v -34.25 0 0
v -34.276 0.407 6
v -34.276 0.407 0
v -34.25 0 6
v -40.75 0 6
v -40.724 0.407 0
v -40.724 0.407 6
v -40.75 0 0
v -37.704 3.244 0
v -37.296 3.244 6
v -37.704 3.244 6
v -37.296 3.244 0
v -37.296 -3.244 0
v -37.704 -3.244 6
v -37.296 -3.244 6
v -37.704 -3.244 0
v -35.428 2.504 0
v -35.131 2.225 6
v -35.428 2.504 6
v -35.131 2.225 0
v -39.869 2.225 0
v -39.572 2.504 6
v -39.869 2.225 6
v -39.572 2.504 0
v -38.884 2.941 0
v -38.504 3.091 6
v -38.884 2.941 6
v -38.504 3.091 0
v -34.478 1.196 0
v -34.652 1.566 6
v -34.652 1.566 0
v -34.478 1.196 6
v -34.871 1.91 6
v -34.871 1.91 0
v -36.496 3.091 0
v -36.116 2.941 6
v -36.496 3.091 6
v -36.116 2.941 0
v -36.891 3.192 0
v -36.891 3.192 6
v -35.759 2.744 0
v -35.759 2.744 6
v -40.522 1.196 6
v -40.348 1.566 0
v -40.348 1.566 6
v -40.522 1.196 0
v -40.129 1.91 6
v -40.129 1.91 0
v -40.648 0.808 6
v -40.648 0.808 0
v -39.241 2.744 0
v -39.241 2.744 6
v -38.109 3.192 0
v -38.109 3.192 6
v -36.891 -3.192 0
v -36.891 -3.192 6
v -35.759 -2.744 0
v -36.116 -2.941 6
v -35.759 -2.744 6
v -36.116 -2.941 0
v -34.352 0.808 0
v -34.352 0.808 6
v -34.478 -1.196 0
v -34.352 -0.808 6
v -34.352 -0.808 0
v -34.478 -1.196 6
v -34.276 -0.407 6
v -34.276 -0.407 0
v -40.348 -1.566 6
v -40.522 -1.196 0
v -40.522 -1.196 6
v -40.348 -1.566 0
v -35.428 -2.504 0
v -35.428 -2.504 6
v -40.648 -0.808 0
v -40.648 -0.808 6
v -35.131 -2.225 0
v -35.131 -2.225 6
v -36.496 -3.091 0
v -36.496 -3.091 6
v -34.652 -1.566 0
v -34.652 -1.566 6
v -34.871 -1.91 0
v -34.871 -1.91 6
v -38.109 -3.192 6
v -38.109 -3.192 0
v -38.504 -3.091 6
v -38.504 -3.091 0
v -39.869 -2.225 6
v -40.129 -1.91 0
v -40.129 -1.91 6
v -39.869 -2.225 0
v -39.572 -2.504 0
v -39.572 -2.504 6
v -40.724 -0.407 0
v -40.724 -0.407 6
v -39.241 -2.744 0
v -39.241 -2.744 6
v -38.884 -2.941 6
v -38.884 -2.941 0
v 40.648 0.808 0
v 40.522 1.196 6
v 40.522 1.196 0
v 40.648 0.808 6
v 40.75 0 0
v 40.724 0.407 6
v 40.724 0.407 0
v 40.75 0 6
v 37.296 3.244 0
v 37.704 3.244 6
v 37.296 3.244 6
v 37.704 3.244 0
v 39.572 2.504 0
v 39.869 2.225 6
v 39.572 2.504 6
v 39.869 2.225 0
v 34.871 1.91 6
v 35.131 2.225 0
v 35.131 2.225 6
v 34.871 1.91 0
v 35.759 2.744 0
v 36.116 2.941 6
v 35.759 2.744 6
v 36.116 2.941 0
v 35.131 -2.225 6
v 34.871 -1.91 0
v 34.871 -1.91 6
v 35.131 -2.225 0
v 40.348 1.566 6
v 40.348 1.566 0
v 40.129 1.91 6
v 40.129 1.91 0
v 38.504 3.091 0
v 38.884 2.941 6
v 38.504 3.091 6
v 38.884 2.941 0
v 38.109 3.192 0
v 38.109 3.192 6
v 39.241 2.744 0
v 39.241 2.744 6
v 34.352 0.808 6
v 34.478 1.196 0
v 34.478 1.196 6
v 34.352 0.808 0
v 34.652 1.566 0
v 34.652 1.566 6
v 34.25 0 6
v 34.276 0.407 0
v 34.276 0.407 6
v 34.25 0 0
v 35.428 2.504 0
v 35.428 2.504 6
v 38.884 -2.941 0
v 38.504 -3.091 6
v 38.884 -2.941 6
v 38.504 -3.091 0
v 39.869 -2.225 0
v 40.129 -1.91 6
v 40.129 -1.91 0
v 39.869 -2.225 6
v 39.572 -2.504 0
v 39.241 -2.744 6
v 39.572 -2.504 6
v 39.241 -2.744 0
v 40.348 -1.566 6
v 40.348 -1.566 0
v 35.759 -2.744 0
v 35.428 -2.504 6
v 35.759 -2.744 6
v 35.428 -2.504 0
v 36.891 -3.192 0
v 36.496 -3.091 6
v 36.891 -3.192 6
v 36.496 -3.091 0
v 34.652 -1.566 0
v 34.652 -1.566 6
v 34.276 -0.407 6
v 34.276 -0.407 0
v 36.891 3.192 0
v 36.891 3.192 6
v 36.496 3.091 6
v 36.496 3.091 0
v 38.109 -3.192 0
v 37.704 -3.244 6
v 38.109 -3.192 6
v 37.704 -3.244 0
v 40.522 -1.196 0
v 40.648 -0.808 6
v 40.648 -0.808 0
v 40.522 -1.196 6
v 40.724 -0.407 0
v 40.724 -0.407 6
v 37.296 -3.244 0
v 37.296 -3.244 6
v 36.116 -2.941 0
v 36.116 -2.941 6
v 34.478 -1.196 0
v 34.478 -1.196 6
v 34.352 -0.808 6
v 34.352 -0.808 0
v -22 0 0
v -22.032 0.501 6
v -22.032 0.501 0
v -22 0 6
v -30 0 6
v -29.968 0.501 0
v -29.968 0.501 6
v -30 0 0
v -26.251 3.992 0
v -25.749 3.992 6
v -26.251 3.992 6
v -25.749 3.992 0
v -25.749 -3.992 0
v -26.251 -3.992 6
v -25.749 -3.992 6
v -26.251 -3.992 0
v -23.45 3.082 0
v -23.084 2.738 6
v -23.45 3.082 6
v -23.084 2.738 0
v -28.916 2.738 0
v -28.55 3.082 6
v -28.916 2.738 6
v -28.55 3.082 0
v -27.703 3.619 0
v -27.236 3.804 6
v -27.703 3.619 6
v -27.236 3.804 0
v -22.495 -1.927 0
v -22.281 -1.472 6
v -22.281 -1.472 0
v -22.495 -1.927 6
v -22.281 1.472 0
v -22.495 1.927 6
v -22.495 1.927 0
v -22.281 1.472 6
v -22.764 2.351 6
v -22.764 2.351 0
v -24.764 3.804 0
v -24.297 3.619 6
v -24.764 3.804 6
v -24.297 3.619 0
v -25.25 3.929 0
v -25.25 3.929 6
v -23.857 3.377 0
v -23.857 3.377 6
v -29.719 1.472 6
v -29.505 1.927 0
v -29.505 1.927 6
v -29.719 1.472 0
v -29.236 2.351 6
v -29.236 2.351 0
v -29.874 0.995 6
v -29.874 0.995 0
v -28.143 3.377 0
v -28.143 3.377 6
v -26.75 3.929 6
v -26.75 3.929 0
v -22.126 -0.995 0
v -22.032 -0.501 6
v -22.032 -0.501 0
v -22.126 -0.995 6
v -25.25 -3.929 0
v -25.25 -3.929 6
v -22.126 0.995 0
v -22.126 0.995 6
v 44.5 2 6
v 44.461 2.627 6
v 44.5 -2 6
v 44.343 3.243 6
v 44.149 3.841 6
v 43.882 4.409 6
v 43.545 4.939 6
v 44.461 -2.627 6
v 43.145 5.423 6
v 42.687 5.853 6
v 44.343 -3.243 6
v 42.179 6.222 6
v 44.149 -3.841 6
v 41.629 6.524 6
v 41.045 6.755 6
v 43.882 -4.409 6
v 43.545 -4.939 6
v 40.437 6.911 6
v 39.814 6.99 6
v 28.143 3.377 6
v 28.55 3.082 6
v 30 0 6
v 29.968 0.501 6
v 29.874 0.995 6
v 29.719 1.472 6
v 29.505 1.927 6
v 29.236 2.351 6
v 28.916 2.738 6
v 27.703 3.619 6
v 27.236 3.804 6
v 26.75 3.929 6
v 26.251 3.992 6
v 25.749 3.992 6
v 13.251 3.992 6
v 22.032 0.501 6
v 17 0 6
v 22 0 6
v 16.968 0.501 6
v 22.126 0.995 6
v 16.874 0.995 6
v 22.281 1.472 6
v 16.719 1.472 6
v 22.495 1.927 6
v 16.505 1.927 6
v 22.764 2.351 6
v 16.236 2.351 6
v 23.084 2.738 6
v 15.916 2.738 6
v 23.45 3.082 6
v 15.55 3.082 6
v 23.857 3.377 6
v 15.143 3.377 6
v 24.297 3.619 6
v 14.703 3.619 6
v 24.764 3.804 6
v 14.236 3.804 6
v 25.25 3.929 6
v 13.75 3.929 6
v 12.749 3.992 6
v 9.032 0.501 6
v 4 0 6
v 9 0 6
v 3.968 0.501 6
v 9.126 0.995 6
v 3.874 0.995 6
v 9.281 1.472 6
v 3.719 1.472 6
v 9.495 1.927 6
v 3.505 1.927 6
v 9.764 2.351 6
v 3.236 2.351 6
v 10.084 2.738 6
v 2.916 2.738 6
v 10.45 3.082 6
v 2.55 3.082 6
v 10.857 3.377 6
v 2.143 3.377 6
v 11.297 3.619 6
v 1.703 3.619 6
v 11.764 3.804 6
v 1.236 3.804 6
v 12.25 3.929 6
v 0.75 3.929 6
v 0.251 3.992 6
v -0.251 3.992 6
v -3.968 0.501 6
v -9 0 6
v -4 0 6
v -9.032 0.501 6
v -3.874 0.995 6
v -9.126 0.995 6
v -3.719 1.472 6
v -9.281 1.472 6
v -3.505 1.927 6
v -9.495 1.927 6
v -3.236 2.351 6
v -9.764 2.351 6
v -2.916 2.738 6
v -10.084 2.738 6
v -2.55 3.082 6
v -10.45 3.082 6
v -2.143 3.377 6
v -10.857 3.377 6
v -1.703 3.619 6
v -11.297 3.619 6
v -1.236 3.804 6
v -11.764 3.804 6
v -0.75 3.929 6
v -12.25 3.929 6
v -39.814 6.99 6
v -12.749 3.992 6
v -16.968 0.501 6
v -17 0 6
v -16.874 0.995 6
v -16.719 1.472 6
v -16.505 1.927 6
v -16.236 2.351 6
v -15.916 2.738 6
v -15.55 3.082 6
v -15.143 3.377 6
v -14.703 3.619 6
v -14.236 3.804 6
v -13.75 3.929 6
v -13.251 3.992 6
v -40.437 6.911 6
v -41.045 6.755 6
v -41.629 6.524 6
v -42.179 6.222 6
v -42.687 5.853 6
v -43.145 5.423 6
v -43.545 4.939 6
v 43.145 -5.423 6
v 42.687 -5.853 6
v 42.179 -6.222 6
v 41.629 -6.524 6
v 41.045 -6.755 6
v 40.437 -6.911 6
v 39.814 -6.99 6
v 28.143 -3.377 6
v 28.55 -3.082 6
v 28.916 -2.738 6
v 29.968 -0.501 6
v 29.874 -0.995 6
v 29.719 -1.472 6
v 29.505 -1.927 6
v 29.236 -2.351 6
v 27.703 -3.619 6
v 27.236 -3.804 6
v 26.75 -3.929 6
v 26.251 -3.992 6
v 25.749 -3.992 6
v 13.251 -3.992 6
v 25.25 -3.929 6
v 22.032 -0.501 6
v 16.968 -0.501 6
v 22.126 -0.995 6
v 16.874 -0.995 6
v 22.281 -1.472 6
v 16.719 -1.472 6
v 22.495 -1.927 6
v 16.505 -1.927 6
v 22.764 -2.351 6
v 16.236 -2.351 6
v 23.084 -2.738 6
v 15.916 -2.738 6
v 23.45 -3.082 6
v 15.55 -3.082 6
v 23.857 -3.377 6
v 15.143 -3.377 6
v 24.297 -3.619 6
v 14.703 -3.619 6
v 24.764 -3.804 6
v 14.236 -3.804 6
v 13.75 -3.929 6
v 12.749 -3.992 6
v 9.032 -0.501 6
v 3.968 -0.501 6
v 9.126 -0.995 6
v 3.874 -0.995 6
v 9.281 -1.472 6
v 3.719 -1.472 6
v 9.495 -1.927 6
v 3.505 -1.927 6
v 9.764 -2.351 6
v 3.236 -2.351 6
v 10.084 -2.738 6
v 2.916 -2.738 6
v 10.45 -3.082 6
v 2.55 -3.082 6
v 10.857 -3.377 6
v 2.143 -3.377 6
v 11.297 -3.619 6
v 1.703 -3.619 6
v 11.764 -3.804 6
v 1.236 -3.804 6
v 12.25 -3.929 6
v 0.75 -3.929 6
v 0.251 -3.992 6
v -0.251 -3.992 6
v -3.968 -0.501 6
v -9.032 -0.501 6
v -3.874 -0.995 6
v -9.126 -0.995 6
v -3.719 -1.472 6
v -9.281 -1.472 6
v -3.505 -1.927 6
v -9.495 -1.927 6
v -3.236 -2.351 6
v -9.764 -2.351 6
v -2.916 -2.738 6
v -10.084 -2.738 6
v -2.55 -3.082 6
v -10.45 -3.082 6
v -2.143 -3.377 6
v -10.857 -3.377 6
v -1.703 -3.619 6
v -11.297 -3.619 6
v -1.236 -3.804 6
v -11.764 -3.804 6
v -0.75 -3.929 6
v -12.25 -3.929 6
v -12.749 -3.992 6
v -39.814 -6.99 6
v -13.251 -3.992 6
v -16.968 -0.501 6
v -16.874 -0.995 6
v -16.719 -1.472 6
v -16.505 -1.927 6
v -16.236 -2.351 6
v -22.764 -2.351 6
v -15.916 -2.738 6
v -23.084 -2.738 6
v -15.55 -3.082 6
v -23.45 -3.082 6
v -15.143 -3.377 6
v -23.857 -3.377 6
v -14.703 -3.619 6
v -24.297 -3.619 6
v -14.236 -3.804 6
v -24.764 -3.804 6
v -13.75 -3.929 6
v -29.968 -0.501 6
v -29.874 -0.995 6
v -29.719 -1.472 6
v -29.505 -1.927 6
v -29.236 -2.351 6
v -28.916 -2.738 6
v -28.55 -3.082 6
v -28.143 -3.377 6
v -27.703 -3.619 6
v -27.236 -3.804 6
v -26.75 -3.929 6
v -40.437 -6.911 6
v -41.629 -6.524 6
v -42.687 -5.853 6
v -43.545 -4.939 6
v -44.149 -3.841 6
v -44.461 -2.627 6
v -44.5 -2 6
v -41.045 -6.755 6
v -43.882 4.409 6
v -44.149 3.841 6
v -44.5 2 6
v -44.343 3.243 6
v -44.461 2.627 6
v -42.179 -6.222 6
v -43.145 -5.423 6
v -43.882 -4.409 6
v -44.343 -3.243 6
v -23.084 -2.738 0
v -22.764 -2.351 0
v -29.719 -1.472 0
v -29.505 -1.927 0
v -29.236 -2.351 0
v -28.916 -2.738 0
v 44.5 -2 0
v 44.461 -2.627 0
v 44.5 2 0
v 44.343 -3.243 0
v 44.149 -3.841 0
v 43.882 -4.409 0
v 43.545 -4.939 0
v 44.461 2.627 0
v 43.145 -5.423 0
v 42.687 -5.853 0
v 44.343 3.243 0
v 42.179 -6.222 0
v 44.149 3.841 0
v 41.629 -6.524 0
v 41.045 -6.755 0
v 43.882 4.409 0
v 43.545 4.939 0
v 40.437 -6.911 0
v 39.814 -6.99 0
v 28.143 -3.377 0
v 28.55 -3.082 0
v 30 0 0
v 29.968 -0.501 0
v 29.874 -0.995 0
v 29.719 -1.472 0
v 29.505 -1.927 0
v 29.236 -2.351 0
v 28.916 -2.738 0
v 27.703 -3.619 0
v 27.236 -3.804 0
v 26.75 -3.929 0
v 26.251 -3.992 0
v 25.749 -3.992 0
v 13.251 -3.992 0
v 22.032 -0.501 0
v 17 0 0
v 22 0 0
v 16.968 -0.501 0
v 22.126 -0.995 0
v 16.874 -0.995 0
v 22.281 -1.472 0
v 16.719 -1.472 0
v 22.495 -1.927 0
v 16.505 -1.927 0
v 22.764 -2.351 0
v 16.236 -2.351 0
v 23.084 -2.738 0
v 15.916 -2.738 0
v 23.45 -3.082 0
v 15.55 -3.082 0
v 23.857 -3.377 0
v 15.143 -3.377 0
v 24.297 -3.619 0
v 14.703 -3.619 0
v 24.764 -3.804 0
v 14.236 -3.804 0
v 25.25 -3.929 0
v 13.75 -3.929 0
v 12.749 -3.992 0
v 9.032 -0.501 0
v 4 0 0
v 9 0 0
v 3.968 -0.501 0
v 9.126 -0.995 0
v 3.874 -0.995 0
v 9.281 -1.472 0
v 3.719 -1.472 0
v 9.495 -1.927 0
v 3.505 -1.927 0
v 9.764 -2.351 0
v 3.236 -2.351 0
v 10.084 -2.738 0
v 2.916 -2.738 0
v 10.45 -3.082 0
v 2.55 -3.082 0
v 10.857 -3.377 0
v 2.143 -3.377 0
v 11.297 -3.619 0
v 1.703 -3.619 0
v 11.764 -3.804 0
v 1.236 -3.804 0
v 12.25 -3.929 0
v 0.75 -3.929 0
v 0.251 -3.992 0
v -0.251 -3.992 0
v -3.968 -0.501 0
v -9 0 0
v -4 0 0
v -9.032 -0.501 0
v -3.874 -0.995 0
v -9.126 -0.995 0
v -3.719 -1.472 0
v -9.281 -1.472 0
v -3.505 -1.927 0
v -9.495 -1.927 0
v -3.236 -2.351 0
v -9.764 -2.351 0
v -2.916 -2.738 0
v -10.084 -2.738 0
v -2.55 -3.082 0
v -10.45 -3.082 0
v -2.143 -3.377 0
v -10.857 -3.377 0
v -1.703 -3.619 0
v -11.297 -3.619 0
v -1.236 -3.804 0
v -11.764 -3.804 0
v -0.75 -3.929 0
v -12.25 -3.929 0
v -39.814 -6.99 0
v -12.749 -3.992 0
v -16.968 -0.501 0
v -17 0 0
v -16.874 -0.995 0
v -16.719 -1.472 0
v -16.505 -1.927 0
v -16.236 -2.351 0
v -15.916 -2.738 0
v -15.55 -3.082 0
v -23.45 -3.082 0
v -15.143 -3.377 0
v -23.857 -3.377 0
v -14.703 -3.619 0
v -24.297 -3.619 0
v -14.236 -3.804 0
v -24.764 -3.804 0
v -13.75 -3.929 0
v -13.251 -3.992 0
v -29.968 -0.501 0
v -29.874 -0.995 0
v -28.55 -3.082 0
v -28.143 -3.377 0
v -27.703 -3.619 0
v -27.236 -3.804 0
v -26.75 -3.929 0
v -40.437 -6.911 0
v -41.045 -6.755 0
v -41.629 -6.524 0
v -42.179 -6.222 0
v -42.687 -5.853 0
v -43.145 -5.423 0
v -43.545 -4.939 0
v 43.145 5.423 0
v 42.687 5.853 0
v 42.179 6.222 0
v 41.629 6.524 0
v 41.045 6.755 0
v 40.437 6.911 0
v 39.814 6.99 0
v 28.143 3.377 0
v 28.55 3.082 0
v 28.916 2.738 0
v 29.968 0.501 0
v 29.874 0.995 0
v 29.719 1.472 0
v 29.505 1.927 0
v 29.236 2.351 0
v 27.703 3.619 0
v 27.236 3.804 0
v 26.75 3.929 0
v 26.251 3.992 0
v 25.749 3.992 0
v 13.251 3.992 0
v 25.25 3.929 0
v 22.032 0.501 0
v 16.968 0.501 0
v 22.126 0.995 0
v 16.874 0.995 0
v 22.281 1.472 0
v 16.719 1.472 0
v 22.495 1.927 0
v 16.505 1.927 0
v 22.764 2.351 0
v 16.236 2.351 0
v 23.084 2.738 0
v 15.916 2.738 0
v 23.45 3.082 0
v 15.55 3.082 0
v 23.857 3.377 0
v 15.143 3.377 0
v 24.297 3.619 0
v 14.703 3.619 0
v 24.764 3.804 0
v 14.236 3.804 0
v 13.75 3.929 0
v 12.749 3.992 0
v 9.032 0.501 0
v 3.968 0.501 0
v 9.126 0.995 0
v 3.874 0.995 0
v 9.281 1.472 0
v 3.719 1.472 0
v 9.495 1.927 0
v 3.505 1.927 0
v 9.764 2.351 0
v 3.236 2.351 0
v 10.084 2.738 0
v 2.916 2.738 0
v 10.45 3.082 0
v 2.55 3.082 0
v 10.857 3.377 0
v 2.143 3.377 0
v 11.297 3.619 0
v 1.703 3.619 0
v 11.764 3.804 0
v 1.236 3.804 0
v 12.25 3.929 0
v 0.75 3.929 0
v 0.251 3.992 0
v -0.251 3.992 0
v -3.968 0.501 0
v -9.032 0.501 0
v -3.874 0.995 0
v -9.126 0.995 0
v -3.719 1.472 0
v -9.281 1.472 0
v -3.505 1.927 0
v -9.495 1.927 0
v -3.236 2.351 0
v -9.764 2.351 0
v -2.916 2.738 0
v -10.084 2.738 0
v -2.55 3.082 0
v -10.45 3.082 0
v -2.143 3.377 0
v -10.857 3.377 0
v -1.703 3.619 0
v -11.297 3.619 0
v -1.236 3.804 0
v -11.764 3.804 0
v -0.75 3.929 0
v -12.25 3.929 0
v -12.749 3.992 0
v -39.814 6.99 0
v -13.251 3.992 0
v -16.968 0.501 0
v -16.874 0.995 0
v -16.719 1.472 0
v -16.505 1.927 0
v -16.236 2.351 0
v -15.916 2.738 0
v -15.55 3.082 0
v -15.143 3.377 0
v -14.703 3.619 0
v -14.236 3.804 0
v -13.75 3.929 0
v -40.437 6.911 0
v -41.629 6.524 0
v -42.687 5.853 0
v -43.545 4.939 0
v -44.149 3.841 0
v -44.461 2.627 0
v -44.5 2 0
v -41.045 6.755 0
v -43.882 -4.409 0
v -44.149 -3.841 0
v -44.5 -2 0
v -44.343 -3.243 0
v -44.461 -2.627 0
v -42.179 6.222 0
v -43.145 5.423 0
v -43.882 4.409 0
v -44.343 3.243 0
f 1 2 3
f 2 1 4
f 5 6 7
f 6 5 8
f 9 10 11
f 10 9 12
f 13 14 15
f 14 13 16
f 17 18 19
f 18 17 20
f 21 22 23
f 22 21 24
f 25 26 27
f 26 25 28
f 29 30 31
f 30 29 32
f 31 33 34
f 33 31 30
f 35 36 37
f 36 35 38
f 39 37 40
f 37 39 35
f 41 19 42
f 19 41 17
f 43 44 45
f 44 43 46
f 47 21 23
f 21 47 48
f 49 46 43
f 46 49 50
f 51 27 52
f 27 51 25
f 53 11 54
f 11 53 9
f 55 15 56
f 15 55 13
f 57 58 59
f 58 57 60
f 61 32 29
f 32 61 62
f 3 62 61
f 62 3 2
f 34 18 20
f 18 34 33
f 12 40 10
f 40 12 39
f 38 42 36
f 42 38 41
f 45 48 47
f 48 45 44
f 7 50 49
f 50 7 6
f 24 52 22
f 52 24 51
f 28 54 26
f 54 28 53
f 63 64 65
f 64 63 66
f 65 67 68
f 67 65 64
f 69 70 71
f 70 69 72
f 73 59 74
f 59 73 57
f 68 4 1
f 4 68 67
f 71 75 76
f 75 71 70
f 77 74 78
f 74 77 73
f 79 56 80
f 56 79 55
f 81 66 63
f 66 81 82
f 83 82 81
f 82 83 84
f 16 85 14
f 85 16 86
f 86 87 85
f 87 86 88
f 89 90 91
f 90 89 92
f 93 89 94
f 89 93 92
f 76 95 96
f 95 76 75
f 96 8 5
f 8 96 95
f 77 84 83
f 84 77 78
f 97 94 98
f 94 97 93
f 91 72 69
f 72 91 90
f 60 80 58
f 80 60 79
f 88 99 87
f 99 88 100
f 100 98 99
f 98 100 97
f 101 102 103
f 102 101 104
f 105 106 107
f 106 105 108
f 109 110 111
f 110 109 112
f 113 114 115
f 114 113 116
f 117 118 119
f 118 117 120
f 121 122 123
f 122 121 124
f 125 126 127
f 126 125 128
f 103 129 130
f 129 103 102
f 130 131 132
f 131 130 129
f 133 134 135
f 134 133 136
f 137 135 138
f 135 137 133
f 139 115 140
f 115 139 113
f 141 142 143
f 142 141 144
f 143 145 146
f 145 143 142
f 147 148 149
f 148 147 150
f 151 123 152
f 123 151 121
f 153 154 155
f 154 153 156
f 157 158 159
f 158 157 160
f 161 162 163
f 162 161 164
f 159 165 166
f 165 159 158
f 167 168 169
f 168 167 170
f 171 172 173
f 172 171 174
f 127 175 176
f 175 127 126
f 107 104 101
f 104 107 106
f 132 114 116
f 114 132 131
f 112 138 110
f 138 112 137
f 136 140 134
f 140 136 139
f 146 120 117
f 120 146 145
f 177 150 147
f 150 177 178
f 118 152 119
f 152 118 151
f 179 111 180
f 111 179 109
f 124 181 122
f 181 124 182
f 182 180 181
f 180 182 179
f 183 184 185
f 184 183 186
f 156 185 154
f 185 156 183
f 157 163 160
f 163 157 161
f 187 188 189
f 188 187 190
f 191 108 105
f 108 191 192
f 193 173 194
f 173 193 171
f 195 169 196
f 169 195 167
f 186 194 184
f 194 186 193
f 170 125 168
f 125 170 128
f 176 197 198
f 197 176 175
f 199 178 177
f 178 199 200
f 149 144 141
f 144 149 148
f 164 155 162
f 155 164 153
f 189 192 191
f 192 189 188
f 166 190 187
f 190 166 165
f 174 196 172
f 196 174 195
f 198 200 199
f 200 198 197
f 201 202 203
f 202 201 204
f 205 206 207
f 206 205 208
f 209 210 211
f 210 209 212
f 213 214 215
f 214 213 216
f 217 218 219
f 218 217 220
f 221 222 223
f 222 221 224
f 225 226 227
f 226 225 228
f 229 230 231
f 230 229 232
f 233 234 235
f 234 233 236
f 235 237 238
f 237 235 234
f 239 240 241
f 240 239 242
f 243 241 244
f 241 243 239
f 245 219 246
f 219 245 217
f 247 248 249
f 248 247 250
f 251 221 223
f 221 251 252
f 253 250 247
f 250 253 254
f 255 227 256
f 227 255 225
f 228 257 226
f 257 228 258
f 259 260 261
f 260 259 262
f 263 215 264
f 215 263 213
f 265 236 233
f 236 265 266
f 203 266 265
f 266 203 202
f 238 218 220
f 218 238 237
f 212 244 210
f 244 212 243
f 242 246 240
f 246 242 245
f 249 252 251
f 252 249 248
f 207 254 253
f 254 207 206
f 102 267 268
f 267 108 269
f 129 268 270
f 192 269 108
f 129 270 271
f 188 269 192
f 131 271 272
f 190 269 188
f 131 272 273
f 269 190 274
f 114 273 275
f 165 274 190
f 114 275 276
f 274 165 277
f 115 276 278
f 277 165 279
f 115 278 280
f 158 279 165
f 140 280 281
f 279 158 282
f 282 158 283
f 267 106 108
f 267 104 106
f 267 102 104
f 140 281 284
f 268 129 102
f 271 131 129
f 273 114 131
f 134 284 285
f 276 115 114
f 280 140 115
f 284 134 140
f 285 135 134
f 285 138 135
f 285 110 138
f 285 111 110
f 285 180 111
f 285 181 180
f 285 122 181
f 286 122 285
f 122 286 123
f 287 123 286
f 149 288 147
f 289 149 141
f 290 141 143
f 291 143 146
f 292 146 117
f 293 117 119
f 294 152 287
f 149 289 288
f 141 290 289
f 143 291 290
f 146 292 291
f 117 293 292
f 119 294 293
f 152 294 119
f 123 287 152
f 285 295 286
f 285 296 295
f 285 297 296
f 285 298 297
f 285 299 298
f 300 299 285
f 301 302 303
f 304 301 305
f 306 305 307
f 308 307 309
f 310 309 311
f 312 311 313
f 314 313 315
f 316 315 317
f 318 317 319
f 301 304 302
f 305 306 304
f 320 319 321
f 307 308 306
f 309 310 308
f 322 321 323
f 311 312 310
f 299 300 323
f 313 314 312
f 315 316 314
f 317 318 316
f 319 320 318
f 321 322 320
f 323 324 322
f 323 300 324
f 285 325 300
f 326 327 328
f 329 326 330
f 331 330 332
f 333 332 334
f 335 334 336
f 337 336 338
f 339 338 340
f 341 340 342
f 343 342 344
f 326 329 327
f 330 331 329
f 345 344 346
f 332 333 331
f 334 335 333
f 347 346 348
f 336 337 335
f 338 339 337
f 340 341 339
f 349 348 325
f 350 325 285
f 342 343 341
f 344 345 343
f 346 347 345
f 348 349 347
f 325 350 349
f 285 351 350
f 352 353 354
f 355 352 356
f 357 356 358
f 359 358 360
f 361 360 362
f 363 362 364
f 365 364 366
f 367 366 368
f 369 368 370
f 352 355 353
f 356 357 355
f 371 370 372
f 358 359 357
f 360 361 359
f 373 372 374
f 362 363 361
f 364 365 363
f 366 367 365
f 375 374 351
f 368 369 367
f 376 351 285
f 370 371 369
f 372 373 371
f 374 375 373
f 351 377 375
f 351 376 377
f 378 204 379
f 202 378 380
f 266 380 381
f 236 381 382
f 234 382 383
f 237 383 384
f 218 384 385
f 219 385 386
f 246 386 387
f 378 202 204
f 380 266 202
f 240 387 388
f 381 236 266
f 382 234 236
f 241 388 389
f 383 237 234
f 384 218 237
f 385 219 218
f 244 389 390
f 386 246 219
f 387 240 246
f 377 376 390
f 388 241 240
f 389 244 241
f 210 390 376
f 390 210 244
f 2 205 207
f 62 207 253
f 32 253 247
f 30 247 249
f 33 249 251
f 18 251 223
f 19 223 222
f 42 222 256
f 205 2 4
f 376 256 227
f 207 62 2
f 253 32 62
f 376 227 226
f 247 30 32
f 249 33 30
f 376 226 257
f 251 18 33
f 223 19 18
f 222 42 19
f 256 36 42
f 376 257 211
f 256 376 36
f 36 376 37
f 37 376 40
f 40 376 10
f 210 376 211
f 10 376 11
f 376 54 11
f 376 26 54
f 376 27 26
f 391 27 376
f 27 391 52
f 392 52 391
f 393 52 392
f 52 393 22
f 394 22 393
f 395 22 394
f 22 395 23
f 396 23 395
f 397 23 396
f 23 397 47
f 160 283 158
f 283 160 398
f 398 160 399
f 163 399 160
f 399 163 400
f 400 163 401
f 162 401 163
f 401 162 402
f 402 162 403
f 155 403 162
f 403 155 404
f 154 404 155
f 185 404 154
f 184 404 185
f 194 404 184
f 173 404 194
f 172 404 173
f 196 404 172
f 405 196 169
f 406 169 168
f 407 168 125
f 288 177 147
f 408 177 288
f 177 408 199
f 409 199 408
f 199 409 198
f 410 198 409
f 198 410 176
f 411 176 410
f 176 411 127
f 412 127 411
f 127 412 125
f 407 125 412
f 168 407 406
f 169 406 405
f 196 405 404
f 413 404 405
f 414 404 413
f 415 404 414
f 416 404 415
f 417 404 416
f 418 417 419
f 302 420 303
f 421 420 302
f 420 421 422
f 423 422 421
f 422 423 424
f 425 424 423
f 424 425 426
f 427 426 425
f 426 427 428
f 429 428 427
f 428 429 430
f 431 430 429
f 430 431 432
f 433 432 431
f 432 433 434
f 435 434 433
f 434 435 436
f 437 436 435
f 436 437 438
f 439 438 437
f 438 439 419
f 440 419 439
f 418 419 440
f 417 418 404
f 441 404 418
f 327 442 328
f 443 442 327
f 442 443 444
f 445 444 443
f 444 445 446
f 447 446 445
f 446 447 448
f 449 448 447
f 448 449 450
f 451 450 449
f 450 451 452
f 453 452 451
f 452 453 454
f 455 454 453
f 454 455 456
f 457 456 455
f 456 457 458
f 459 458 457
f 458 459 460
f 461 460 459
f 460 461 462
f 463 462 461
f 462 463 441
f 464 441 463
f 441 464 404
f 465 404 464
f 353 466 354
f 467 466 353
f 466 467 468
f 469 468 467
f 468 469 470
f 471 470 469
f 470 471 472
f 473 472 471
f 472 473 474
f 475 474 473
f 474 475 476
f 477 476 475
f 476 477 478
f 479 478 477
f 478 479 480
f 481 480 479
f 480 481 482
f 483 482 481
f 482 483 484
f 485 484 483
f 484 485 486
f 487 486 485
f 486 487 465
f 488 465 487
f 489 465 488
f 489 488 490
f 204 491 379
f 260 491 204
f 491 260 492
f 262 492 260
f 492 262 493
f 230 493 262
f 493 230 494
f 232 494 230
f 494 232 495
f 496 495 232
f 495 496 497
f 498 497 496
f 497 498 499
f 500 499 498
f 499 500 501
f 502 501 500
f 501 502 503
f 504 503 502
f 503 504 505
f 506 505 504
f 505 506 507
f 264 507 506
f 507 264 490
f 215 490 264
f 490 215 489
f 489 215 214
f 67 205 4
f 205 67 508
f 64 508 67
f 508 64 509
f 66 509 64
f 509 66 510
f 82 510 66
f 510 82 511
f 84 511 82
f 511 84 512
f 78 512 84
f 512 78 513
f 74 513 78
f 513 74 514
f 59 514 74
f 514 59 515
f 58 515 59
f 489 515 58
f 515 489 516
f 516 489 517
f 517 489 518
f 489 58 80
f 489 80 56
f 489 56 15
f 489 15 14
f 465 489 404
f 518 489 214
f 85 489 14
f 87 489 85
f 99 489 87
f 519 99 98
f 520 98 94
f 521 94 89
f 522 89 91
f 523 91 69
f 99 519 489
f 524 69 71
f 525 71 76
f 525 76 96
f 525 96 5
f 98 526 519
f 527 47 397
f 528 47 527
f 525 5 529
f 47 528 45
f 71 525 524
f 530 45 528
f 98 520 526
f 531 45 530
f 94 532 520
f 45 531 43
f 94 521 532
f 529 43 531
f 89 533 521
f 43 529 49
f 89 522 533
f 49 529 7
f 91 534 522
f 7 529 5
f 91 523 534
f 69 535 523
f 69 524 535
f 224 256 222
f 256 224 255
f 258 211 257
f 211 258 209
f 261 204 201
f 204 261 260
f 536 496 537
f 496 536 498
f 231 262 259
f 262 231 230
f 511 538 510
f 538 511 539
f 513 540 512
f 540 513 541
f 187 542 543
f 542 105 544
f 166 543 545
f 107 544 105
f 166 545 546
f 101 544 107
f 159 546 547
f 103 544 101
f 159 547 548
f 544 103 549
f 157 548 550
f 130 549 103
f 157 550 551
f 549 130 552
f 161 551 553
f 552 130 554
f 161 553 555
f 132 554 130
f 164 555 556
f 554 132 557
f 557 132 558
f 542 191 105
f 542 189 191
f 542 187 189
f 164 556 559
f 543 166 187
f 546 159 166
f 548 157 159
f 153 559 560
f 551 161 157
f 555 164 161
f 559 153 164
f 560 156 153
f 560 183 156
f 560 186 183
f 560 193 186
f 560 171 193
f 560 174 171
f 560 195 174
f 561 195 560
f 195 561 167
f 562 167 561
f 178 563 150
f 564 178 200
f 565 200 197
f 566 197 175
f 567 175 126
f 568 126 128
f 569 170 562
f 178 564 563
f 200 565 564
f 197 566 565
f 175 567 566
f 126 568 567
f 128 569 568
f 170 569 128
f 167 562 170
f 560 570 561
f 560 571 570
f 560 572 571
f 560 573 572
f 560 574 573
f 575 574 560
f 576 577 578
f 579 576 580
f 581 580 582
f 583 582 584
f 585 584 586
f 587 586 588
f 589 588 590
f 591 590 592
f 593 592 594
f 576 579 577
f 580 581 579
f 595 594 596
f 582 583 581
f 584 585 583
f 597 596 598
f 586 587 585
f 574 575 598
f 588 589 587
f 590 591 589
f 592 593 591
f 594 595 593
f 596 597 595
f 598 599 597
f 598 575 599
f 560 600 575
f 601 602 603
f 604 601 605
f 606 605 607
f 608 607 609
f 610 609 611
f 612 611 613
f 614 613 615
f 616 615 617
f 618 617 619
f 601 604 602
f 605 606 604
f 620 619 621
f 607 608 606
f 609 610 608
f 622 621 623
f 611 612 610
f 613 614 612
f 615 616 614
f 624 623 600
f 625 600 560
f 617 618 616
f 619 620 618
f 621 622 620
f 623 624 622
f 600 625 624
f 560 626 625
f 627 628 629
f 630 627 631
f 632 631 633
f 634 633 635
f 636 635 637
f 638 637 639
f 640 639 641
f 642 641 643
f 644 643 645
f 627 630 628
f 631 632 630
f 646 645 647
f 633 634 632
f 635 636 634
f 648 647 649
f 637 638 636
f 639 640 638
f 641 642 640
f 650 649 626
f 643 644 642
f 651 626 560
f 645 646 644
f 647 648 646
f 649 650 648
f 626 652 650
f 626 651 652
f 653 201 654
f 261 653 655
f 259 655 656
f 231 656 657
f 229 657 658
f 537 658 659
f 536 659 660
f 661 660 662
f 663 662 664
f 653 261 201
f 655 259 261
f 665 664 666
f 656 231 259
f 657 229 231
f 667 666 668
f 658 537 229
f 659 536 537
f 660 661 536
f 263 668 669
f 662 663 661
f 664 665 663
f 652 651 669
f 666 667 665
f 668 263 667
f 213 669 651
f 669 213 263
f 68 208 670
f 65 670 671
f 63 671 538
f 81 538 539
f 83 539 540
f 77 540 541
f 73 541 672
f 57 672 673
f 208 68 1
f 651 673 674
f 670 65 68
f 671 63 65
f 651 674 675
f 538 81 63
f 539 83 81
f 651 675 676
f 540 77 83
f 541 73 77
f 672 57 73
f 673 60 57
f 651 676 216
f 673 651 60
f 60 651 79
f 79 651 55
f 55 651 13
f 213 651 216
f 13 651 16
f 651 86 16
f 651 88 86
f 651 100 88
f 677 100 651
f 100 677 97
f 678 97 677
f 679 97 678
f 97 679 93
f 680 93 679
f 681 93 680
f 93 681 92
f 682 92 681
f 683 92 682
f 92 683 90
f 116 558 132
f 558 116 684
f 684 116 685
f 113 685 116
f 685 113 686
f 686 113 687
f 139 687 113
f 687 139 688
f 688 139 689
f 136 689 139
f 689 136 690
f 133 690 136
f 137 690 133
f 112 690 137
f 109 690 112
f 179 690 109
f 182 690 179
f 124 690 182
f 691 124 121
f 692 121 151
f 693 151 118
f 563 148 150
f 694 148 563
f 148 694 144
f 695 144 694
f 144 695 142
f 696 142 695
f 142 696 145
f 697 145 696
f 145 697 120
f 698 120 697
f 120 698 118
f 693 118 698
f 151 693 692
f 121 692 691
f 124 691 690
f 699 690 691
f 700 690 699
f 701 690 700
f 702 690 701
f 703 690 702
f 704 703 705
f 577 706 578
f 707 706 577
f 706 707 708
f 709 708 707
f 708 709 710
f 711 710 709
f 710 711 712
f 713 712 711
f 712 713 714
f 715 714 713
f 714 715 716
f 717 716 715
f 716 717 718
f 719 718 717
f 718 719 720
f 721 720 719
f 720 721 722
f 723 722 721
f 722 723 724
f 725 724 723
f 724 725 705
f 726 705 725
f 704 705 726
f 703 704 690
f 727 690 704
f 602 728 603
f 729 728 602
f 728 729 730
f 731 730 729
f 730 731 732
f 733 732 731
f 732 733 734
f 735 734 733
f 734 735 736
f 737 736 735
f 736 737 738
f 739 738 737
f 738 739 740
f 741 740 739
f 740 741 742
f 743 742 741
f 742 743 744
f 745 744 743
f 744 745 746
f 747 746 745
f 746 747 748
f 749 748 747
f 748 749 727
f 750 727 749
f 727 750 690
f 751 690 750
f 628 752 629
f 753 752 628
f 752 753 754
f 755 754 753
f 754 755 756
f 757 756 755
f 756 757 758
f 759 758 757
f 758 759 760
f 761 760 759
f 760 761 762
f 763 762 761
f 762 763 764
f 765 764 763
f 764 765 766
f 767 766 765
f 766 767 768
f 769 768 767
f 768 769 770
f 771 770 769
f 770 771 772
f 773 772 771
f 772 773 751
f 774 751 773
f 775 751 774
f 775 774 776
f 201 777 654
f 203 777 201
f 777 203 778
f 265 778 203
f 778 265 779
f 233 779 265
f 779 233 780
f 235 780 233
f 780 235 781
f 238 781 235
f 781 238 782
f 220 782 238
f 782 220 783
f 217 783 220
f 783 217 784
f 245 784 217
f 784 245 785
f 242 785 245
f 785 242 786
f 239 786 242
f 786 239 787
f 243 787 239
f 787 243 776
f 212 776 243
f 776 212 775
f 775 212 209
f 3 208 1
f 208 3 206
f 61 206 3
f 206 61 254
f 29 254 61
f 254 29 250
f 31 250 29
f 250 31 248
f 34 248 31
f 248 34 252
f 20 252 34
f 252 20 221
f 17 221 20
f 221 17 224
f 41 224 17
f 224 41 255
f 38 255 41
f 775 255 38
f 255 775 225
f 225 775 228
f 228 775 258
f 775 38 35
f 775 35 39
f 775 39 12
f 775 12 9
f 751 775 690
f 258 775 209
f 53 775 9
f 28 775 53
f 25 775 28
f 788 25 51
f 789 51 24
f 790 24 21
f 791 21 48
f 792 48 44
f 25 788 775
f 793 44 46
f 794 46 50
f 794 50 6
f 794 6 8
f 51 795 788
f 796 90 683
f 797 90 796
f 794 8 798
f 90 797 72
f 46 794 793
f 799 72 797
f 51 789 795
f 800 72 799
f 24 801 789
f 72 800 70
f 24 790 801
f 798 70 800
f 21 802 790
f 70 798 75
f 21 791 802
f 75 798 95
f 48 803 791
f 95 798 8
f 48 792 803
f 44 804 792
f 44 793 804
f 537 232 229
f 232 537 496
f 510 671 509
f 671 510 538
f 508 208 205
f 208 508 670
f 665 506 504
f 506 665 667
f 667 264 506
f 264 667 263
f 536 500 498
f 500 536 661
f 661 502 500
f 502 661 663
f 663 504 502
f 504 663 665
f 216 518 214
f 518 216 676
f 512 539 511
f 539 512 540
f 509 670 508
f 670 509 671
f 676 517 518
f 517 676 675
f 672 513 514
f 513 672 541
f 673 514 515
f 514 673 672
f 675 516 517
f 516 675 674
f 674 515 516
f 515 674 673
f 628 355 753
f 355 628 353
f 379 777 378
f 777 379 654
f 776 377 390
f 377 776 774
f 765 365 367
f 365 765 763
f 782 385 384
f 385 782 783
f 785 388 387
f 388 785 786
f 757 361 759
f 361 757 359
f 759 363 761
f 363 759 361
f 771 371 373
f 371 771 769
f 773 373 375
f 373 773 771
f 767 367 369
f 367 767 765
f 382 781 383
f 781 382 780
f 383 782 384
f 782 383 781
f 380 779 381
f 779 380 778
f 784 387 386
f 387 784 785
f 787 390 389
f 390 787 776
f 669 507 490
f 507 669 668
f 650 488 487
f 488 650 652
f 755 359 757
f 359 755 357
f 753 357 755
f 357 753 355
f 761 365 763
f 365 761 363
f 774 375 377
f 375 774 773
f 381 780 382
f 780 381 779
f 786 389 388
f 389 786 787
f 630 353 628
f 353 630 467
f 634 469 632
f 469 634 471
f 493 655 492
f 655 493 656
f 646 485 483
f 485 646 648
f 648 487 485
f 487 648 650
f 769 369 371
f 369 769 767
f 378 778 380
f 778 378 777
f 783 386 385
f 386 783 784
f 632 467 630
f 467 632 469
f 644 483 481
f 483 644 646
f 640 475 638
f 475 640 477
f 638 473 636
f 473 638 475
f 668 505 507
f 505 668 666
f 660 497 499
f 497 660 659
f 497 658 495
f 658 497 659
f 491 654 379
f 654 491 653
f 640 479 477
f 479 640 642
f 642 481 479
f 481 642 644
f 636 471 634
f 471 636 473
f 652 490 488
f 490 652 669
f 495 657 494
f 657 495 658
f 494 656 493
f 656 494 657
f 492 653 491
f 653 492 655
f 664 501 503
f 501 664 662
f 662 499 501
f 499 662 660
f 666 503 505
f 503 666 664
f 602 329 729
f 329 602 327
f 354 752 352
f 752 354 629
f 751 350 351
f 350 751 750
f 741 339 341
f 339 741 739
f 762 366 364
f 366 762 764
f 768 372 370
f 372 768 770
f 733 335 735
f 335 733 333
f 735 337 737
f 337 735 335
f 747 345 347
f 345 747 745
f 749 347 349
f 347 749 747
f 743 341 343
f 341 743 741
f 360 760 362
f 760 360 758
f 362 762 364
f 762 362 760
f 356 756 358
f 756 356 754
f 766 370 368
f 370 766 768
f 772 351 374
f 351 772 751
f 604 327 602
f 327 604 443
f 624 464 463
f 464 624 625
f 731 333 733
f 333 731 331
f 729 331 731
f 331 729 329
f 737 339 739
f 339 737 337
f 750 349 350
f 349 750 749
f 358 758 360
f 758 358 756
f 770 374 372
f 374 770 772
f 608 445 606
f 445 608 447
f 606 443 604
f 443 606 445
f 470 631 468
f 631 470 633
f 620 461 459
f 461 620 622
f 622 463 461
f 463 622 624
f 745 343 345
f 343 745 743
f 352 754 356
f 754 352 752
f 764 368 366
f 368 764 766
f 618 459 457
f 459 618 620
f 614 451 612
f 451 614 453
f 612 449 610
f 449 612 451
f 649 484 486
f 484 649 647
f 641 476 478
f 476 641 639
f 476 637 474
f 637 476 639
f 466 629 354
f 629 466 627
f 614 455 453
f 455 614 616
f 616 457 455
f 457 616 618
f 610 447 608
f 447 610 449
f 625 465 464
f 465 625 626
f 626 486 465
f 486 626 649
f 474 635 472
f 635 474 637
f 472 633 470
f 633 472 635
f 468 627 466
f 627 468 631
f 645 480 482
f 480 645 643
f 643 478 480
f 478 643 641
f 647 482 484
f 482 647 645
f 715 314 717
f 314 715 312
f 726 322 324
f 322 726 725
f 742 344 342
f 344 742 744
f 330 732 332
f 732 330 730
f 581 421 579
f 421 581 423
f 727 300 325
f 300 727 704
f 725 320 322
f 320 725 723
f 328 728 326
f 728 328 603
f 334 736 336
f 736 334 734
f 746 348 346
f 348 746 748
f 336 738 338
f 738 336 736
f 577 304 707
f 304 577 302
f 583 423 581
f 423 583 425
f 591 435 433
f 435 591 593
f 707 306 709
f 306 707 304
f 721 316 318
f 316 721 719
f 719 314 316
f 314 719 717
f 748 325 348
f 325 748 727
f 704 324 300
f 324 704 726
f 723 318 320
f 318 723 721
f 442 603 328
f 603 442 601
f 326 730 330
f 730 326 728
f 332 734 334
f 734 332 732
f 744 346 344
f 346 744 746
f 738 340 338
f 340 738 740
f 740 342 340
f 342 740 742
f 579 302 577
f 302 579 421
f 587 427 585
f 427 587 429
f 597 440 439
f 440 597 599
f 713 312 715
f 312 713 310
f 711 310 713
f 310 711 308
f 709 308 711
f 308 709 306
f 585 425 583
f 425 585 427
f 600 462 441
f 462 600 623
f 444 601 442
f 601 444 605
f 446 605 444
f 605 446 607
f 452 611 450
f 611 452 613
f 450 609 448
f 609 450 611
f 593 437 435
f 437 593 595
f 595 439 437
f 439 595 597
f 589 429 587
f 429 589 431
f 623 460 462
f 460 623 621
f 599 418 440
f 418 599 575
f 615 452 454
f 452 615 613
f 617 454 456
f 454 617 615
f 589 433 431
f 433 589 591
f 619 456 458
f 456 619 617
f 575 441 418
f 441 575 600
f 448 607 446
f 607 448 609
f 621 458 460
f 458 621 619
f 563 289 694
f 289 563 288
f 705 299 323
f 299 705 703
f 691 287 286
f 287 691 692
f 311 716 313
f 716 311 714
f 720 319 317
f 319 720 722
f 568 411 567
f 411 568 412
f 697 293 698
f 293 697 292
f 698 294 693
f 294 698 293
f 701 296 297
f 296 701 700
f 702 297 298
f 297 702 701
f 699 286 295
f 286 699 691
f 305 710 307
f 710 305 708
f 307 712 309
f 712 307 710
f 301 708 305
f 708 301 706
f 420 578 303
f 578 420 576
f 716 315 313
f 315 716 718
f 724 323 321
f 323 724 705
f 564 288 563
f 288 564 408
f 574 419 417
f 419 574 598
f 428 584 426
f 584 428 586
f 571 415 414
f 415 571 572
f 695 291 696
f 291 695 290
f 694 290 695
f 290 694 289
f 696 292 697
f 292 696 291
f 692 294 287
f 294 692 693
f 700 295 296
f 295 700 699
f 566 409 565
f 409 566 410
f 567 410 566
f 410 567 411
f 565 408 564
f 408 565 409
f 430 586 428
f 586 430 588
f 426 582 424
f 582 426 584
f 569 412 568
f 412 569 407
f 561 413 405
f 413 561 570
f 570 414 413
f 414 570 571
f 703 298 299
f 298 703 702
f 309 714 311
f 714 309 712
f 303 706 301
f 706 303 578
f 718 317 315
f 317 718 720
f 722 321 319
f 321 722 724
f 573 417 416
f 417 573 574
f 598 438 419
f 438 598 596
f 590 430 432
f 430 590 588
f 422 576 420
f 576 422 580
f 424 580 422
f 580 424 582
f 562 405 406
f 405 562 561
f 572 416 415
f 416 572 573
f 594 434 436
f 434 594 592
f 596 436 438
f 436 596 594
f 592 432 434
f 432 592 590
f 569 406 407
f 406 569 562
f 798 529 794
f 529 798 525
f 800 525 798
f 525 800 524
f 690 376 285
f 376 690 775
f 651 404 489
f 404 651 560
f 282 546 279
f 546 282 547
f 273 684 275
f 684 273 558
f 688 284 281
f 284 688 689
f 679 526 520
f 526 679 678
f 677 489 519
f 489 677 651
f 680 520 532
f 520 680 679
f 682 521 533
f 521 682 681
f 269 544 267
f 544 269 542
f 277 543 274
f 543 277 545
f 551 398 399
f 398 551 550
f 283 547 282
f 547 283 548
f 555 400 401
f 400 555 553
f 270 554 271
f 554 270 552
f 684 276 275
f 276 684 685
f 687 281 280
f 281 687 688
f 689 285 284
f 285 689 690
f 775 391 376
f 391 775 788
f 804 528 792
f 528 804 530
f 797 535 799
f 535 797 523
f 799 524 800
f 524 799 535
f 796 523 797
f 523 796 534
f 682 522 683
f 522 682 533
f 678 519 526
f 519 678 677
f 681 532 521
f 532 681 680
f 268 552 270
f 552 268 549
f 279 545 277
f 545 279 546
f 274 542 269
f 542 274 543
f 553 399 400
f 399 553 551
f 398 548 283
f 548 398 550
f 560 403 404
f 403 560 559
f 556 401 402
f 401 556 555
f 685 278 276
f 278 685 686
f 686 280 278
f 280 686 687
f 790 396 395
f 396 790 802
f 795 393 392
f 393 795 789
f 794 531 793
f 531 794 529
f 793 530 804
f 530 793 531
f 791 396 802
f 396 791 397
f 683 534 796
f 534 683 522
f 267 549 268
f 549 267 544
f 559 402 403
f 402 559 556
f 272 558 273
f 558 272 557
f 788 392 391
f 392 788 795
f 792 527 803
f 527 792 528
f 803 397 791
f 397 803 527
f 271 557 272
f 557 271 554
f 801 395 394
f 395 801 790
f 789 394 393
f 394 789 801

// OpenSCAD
$fn = 50;


difference() {
	union() {
		hull() {
			translate(v = [-39.5000000000, 2.0000000000, 0]) {
				cylinder(h = 6, r = 5);
			}
			translate(v = [39.5000000000, 2.0000000000, 0]) {
				cylinder(h = 6, r = 5);
			}
			translate(v = [-39.5000000000, -2.0000000000, 0]) {
				cylinder(h = 6, r = 5);
			}
			translate(v = [39.5000000000, -2.0000000000, 0]) {
				cylinder(h = 6, r = 5);
			}
		}
	}
	union() {
		#translate(v = [-37.5000000000, 0.0000000000, 0]) {
			cylinder(h = 6, r = 3.2500000000);
		}
		#translate(v = [37.5000000000, 0.0000000000, 0]) {
			cylinder(h = 6, r = 3.2500000000);
		}
		#translate(v = [-37.5000000000, 0.0000000000, -100.0000000000]) {
			cylinder(h = 200, r = 3.2500000000);
		}
		#translate(v = [-37.5000000000, 0.0000000000, -100.0000000000]) {
			cylinder(h = 200, r = 3.2500000000);
		}
		#translate(v = [37.5000000000, 0.0000000000, -100.0000000000]) {
			cylinder(h = 200, r = 3.2500000000);
		}
		#translate(v = [37.5000000000, 0.0000000000, -100.0000000000]) {
			cylinder(h = 200, r = 3.2500000000);
		}
		#translate(v = [-37.5000000000, 0.0000000000, 0]) {
			cylinder(h = 6, r = 1.8000000000);
		}
		#translate(v = [37.5000000000, 0.0000000000, 0]) {
			cylinder(h = 6, r = 1.8000000000);
		}
		#translate(v = [-37.5000000000, 0.0000000000, 0]) {
			cylinder(h = 6, r = 1.8000000000);
		}
		#translate(v = [37.5000000000, 0.0000000000, 0]) {
			cylinder(h = 6, r = 1.8000000000);
		}
		#translate(v = [-37.5000000000, 0.0000000000, 0]) {
			cylinder(h = 6, r = 1.8000000000);
		}
		#translate(v = [37.5000000000, 0.0000000000, 0]) {
			cylinder(h = 6, r = 1.8000000000);
		}
		#translate(v = [-26.0000000000, 0, 0]) {
			cylinder(h = 6, r = 4.0000000000);
		}
		#translate(v = [-13.0000000000, 0, 0]) {
			cylinder(h = 6, r = 4.0000000000);
		}
		#cylinder(h = 6, r = 4.0000000000);
		#translate(v = [13.0000000000, 0, 0]) {
			cylinder(h = 6, r = 4.0000000000);
		}
		#translate(v = [26.0000000000, 0, 0]) {
			cylinder(h = 6, r = 4.0000000000);
		}
	}
}
